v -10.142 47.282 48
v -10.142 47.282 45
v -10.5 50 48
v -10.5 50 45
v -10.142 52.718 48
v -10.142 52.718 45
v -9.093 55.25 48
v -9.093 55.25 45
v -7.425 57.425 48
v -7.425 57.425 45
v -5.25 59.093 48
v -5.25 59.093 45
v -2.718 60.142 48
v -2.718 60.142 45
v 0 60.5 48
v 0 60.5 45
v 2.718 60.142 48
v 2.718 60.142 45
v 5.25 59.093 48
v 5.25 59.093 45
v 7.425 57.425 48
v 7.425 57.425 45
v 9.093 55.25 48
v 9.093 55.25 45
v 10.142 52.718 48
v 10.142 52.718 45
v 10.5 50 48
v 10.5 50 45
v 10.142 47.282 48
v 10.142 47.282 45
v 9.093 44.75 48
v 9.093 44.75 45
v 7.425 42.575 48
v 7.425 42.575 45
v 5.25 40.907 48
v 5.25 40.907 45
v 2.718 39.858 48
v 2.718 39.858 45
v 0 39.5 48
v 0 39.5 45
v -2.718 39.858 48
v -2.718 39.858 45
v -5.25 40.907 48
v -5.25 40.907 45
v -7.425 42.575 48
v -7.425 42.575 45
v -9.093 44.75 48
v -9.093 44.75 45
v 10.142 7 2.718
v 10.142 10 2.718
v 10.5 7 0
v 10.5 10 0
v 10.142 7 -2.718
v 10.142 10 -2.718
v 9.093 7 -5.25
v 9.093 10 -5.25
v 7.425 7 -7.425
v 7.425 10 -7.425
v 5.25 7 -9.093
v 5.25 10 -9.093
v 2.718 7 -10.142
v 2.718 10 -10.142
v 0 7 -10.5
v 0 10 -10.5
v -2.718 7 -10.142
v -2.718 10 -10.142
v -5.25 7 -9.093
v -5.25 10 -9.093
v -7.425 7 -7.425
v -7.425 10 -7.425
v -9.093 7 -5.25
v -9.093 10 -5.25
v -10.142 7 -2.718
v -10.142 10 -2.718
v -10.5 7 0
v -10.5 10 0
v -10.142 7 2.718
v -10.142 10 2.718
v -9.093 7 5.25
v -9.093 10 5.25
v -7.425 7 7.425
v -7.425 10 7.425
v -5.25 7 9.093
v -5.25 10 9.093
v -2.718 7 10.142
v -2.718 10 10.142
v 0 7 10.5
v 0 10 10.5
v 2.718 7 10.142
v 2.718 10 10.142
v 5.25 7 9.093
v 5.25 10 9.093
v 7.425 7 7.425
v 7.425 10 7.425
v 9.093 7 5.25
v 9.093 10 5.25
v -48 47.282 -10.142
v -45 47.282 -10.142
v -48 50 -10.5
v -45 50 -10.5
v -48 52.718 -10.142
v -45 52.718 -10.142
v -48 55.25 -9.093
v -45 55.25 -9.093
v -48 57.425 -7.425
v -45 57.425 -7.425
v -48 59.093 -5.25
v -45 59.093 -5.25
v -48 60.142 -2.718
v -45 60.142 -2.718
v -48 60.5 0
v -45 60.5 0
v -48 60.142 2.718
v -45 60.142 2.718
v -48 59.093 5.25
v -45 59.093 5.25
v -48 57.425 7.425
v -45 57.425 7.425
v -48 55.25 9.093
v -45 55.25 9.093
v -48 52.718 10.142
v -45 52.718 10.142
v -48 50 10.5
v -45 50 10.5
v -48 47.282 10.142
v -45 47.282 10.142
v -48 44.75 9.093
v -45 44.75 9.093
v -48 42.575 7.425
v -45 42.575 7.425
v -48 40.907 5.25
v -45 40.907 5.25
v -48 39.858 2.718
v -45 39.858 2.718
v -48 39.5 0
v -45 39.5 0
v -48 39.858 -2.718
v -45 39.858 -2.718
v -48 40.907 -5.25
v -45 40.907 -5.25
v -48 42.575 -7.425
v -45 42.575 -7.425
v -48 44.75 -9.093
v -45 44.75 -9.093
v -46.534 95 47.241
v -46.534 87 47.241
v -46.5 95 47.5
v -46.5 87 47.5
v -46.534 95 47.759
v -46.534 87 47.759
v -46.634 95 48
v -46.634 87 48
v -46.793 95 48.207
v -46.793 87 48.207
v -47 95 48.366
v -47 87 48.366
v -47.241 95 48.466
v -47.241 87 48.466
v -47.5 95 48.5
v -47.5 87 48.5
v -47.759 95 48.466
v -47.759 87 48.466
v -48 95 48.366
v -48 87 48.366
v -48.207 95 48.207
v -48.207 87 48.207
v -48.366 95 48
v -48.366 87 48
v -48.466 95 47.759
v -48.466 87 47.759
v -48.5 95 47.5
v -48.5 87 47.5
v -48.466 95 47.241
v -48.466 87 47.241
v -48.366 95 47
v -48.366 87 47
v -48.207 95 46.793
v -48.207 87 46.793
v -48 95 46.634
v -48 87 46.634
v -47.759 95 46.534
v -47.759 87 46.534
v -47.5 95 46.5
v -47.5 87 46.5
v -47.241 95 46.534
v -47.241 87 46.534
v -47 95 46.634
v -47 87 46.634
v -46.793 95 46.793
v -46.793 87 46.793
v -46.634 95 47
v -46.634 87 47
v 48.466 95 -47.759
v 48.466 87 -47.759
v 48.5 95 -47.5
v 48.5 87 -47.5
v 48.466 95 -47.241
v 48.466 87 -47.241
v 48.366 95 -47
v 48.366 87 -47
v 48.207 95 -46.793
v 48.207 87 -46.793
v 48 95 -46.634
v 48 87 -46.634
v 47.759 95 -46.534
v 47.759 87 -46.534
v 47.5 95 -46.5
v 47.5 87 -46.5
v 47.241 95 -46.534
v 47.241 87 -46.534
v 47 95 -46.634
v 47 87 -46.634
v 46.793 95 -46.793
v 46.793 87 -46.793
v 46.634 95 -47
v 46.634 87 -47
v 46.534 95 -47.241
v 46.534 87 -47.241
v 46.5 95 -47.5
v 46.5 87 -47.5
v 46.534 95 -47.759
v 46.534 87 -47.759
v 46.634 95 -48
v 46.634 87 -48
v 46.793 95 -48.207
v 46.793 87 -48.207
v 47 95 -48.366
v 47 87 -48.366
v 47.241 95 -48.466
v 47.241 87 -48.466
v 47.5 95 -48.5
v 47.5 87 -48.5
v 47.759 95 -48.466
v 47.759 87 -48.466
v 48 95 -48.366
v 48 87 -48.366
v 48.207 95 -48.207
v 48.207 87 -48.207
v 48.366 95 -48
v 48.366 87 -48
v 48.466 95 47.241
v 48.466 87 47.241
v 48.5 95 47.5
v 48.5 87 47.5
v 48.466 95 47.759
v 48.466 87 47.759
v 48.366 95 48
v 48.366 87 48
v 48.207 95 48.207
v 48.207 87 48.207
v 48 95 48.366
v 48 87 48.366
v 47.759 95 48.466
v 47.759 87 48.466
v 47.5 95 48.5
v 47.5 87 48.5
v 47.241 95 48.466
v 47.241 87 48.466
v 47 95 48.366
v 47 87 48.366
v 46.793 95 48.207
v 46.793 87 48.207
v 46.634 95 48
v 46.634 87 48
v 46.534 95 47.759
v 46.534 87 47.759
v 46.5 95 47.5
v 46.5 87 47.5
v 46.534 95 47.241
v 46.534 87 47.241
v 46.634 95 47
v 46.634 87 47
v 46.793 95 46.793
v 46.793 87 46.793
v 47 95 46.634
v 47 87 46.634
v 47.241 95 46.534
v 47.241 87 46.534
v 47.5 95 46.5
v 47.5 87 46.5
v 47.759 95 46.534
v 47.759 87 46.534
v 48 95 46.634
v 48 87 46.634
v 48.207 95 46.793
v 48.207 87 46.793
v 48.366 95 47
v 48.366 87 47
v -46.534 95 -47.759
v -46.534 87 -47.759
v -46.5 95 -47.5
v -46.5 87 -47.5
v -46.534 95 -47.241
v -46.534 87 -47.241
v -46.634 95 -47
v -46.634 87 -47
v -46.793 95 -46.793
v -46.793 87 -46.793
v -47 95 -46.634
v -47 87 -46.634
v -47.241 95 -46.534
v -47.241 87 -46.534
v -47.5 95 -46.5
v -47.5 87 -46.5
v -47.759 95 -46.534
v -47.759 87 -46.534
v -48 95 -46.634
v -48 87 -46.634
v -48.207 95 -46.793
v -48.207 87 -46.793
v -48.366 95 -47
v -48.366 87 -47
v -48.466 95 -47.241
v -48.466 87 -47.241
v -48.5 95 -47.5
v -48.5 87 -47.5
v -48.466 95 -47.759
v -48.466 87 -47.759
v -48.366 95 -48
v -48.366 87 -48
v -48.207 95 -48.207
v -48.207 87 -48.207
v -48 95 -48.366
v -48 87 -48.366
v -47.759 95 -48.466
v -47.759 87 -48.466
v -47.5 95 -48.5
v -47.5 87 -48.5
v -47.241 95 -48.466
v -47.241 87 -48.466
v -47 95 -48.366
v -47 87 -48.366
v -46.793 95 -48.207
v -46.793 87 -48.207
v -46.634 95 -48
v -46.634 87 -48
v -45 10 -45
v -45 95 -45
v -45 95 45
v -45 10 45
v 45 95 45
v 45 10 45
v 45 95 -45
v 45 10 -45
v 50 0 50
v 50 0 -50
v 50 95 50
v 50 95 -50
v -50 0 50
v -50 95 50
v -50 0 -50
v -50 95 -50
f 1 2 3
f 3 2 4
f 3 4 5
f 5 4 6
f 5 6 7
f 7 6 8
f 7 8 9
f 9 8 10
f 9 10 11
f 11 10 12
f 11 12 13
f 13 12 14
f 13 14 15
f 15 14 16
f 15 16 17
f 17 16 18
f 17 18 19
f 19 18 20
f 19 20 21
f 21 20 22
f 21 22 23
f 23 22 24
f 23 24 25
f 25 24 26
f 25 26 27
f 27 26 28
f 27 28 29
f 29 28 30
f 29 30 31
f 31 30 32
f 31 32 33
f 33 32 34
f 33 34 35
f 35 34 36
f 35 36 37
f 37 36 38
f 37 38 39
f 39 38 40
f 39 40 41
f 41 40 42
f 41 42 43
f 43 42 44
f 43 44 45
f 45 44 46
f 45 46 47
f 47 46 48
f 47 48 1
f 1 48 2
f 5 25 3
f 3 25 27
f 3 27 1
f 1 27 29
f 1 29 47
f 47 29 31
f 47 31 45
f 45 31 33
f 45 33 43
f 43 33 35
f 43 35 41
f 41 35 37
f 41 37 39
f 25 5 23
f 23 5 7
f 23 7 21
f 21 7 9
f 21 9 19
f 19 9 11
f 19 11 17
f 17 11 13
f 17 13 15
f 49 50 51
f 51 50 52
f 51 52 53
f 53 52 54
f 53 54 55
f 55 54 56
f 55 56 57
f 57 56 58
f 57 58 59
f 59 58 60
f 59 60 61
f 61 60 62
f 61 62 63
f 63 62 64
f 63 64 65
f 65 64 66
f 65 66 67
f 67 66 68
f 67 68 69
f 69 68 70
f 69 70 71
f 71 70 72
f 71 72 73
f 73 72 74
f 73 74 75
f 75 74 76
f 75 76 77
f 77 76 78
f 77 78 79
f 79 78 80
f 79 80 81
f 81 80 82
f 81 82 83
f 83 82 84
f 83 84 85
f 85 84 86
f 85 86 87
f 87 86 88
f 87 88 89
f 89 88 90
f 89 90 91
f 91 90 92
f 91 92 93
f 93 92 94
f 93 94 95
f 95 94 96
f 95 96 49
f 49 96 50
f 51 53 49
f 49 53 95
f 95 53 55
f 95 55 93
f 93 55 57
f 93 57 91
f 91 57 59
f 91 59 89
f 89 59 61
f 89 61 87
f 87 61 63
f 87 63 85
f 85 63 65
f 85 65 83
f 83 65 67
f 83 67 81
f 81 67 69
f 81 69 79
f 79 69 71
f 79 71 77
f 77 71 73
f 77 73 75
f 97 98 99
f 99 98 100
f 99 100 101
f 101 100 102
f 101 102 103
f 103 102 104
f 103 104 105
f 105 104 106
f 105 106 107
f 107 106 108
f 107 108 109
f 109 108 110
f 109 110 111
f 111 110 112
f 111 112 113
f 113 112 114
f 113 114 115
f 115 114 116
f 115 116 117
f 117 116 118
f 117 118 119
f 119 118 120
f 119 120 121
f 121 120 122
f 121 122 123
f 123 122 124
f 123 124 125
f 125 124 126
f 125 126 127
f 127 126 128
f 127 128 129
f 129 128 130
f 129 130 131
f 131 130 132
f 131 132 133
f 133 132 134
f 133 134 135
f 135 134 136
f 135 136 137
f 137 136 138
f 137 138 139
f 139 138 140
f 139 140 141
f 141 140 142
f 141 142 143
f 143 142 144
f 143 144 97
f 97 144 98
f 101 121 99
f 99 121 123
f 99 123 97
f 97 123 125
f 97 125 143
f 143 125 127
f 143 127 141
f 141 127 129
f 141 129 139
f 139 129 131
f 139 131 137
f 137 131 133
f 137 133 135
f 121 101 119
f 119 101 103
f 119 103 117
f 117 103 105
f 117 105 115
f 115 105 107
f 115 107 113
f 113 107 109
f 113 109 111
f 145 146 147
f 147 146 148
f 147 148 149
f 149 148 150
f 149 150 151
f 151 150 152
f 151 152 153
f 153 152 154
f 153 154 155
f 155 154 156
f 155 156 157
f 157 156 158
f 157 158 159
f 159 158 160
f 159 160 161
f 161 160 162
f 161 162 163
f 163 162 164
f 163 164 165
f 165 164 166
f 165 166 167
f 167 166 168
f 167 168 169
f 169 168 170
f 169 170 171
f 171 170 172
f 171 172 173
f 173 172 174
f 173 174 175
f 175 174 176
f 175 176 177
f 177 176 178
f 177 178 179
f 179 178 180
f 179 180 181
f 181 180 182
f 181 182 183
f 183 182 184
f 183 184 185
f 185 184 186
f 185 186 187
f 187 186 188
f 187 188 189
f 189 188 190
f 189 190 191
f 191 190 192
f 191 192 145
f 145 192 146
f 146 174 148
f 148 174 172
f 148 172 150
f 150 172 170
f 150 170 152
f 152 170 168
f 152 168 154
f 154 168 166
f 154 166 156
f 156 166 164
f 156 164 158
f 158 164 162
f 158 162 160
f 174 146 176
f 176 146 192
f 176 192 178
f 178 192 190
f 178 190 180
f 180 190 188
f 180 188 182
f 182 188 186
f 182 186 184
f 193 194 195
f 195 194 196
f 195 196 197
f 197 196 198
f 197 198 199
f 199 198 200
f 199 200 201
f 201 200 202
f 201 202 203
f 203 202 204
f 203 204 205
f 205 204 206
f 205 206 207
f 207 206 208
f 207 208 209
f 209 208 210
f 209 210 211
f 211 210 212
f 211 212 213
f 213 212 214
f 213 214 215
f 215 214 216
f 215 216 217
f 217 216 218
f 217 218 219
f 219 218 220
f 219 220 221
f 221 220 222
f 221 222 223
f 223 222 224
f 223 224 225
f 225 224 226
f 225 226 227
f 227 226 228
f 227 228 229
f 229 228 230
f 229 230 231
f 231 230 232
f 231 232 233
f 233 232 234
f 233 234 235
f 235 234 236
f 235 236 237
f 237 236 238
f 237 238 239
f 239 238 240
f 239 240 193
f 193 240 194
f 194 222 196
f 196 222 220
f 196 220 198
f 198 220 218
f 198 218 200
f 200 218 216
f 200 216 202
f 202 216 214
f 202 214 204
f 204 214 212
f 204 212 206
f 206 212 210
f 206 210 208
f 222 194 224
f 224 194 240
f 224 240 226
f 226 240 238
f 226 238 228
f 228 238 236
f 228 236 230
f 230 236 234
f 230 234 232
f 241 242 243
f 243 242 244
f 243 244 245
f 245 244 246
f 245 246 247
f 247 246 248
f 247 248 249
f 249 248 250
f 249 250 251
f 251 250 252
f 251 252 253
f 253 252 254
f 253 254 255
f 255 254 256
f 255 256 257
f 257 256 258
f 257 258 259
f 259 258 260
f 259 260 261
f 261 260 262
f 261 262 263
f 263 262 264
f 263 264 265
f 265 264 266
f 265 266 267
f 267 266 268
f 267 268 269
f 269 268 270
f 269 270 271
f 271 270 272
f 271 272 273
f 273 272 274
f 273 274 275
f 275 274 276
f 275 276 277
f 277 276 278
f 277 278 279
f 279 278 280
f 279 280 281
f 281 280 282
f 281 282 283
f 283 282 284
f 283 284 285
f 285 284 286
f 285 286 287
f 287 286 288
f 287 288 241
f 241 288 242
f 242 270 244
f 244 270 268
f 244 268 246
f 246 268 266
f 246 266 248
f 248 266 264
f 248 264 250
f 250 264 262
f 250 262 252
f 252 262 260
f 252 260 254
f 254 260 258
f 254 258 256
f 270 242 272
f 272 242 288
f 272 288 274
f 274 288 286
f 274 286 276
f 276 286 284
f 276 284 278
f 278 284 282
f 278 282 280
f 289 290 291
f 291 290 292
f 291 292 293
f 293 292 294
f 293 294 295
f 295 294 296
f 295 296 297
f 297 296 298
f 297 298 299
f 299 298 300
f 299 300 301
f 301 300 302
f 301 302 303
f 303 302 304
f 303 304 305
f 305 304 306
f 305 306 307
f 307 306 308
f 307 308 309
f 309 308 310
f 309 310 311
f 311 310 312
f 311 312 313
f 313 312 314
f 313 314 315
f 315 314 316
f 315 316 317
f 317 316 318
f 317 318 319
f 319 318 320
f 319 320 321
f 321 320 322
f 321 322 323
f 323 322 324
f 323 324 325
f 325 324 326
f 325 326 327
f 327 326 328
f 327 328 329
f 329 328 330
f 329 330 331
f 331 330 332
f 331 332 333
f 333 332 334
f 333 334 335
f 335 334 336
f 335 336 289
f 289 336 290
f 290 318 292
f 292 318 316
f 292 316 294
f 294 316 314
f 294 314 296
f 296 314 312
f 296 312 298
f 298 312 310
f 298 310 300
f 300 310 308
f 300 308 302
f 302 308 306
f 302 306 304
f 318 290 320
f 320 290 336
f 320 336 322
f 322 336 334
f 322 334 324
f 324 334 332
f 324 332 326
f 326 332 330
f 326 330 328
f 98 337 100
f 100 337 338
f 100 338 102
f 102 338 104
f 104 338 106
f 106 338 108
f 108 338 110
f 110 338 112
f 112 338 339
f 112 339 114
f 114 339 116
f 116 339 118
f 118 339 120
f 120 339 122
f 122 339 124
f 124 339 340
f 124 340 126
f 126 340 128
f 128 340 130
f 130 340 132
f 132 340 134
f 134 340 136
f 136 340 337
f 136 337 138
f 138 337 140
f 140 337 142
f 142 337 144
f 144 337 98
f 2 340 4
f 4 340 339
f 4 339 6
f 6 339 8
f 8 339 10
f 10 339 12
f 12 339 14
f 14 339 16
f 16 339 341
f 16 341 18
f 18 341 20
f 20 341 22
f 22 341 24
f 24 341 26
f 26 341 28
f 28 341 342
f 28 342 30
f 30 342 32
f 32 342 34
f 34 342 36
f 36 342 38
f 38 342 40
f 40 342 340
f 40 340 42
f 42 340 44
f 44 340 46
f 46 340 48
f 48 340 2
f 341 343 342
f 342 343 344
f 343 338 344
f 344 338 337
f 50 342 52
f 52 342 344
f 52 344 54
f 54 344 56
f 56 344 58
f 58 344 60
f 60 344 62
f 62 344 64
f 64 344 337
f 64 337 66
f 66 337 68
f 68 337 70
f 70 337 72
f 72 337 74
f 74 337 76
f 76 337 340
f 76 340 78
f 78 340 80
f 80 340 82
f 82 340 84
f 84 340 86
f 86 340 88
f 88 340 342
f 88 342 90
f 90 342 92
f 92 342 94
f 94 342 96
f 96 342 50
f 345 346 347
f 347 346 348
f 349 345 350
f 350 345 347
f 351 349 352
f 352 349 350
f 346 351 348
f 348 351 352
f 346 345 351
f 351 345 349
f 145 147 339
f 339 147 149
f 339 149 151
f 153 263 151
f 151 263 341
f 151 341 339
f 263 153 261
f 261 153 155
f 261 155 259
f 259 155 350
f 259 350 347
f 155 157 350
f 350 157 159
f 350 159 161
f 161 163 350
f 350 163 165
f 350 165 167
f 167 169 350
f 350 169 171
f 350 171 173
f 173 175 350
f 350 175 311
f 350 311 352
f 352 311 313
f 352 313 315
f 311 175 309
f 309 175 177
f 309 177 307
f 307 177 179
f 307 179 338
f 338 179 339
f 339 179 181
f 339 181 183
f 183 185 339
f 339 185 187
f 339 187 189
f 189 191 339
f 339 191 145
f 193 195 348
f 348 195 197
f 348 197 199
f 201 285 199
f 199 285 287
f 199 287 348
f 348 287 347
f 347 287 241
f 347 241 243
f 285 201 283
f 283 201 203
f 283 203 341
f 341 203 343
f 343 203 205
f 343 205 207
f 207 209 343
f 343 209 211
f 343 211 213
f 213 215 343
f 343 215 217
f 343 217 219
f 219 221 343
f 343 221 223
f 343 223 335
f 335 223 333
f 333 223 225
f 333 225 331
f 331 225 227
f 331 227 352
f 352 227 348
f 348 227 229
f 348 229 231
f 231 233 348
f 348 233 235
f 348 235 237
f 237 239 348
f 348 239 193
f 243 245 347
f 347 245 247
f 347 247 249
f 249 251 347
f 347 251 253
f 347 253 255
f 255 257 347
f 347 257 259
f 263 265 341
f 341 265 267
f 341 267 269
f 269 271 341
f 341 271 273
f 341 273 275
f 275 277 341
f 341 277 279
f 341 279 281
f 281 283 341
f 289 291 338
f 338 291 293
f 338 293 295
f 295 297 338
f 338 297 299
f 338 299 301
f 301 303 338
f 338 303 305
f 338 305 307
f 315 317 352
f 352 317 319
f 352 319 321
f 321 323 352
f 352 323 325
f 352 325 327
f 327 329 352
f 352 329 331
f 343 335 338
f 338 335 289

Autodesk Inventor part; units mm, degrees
ref_plane "YZ Plane" through (0, 0, 0) normal (1, 0, 0) x (0, 1, 0)
ref_plane "XZ Plane" through (0, 0, 0) normal (0, 1, 0) x (-1, 0, 0)
ref_plane "XY Plane" through (0, 0, 0) normal (0, 0, 1) x (1, 0, 0)
sketch "Sketch1" plane through (0, 0, 0) normal (0, 1, 0) x (-1, 0, 0)
  line L0 (50, -50) -> (-50, -50)
  line L1 (-50, -50) -> (-50, 50)
  line L2 (-50, 50) -> (50, 50)
  line L3 (50, 50) -> (50, -50)
  point P0 (0, 0)
  point P1 (0, 0)
  dimension "d0" = 100
  dimension "d1" = 100
  dimension "d2" = 50
extrude "Extrusion1" add sketch "Sketch1" along normal blind 95
sketch "Sketch2" plane through (0, 95, 0) normal (0, 1, 0) x (1, 0, 0)
  line L0 (-45, 45) -> (45, 45)
  line L1 (45, 45) -> (45, -45)
  line L2 (45, -45) -> (-45, -45)
  line L3 (-45, -45) -> (-45, 45)
  line L4 (50, -50) -> (50, 50) projected
  line L5 (-50, 50) -> (-50, -50) projected
  line L6 (-50, -50) -> (50, -50) projected
  line L7 (-50, 50) -> (50, 50) projected
  point P0 (0, 0)
  dimension "d5" = 5
  dimension "d6" = 5
  dimension "d7" = 5
  dimension "d8" = 5
extrude "Extrusion2" cut sketch "Sketch2" against normal blind 85 contours L0 L1 L2 L3
sketch "Sketch3" plane through (0, 95, 0) normal (0, 1, 0) x (1, 0, 0)
  line L0 (50, -50) -> (50, 50) projected
  circle A0 centre (47.5, 47.5) radius 1
  line L1 (-50, 50) -> (50, 50) projected
  line L2 (-50, -50) -> (50, -50) projected
  circle A1 centre (47.5, -47.5) radius 1
  line L3 (-50, 50) -> (-50, -50) projected
  circle A2 centre (-47.5, -47.5) radius 1
  circle A3 centre (-47.5, 47.5) radius 1
  point P0 (0, 0)
  point P1 (47.5, -47.5)
  dimension "d12" = 2.5
  dimension "d13" = 2.5
  dimension "d14" = 2.5
  dimension "d15" = 2.5
  dimension "d16" = 2
  dimension "d17" = 2.5
  dimension "d18" = 2.5
  dimension "d19" = 2.5
  dimension "d20" = 2.5
hole "Hole2" at (47.5, 95, -47.5) at (47.5, 95, 47.5) at (-47.5, 95, 47.5) at (-47.5, 95, -47.5) direction (0, -1, 0) diameter 2 depth 8
sketch "Sketch9" plane through (-45, 95, 45) normal (1, 0, 0) x (0, 0, -1)
  circle A0 centre (45, -45) radius 10.5
  point P0 (45, -95)
  dimension "d66" = 21
extrude "Extrusion4" cut sketch "Sketch9" against normal blind 3
sketch "Sketch10" plane through (0, 10, 0) normal (0, 1, 0) x (1, 0, 0)
  circle A0 centre (0, 0) radius 10.5
  dimension "d69" = 21
extrude "Extrusion5" cut sketch "Sketch10" against normal blind 3
sketch "Sketch11" plane through (45, 95, 45) normal (0, 0, -1) x (-1, 0, 0)
  circle A0 centre (45, -45) radius 10.5
  line L0 (0, 0) -> (0, -85) projected
  line L1 (0, 0) -> (90, 0) projected
  point P0 (45, -95)
  dimension "d72" = 45
  dimension "d73" = 45
  dimension "d74" = 21
extrude "Extrusion6" cut sketch "Sketch11" against normal blind 3
sketch "Sketch13" plane through (0, 50, 48) normal (0, 0, -1) x (-1, 0, 0)
  circle A0 centre (0, 0) radius 1.75
  point P0 (0, -50)
  dimension "d77" = 3.5
properties part number "cubesat"
